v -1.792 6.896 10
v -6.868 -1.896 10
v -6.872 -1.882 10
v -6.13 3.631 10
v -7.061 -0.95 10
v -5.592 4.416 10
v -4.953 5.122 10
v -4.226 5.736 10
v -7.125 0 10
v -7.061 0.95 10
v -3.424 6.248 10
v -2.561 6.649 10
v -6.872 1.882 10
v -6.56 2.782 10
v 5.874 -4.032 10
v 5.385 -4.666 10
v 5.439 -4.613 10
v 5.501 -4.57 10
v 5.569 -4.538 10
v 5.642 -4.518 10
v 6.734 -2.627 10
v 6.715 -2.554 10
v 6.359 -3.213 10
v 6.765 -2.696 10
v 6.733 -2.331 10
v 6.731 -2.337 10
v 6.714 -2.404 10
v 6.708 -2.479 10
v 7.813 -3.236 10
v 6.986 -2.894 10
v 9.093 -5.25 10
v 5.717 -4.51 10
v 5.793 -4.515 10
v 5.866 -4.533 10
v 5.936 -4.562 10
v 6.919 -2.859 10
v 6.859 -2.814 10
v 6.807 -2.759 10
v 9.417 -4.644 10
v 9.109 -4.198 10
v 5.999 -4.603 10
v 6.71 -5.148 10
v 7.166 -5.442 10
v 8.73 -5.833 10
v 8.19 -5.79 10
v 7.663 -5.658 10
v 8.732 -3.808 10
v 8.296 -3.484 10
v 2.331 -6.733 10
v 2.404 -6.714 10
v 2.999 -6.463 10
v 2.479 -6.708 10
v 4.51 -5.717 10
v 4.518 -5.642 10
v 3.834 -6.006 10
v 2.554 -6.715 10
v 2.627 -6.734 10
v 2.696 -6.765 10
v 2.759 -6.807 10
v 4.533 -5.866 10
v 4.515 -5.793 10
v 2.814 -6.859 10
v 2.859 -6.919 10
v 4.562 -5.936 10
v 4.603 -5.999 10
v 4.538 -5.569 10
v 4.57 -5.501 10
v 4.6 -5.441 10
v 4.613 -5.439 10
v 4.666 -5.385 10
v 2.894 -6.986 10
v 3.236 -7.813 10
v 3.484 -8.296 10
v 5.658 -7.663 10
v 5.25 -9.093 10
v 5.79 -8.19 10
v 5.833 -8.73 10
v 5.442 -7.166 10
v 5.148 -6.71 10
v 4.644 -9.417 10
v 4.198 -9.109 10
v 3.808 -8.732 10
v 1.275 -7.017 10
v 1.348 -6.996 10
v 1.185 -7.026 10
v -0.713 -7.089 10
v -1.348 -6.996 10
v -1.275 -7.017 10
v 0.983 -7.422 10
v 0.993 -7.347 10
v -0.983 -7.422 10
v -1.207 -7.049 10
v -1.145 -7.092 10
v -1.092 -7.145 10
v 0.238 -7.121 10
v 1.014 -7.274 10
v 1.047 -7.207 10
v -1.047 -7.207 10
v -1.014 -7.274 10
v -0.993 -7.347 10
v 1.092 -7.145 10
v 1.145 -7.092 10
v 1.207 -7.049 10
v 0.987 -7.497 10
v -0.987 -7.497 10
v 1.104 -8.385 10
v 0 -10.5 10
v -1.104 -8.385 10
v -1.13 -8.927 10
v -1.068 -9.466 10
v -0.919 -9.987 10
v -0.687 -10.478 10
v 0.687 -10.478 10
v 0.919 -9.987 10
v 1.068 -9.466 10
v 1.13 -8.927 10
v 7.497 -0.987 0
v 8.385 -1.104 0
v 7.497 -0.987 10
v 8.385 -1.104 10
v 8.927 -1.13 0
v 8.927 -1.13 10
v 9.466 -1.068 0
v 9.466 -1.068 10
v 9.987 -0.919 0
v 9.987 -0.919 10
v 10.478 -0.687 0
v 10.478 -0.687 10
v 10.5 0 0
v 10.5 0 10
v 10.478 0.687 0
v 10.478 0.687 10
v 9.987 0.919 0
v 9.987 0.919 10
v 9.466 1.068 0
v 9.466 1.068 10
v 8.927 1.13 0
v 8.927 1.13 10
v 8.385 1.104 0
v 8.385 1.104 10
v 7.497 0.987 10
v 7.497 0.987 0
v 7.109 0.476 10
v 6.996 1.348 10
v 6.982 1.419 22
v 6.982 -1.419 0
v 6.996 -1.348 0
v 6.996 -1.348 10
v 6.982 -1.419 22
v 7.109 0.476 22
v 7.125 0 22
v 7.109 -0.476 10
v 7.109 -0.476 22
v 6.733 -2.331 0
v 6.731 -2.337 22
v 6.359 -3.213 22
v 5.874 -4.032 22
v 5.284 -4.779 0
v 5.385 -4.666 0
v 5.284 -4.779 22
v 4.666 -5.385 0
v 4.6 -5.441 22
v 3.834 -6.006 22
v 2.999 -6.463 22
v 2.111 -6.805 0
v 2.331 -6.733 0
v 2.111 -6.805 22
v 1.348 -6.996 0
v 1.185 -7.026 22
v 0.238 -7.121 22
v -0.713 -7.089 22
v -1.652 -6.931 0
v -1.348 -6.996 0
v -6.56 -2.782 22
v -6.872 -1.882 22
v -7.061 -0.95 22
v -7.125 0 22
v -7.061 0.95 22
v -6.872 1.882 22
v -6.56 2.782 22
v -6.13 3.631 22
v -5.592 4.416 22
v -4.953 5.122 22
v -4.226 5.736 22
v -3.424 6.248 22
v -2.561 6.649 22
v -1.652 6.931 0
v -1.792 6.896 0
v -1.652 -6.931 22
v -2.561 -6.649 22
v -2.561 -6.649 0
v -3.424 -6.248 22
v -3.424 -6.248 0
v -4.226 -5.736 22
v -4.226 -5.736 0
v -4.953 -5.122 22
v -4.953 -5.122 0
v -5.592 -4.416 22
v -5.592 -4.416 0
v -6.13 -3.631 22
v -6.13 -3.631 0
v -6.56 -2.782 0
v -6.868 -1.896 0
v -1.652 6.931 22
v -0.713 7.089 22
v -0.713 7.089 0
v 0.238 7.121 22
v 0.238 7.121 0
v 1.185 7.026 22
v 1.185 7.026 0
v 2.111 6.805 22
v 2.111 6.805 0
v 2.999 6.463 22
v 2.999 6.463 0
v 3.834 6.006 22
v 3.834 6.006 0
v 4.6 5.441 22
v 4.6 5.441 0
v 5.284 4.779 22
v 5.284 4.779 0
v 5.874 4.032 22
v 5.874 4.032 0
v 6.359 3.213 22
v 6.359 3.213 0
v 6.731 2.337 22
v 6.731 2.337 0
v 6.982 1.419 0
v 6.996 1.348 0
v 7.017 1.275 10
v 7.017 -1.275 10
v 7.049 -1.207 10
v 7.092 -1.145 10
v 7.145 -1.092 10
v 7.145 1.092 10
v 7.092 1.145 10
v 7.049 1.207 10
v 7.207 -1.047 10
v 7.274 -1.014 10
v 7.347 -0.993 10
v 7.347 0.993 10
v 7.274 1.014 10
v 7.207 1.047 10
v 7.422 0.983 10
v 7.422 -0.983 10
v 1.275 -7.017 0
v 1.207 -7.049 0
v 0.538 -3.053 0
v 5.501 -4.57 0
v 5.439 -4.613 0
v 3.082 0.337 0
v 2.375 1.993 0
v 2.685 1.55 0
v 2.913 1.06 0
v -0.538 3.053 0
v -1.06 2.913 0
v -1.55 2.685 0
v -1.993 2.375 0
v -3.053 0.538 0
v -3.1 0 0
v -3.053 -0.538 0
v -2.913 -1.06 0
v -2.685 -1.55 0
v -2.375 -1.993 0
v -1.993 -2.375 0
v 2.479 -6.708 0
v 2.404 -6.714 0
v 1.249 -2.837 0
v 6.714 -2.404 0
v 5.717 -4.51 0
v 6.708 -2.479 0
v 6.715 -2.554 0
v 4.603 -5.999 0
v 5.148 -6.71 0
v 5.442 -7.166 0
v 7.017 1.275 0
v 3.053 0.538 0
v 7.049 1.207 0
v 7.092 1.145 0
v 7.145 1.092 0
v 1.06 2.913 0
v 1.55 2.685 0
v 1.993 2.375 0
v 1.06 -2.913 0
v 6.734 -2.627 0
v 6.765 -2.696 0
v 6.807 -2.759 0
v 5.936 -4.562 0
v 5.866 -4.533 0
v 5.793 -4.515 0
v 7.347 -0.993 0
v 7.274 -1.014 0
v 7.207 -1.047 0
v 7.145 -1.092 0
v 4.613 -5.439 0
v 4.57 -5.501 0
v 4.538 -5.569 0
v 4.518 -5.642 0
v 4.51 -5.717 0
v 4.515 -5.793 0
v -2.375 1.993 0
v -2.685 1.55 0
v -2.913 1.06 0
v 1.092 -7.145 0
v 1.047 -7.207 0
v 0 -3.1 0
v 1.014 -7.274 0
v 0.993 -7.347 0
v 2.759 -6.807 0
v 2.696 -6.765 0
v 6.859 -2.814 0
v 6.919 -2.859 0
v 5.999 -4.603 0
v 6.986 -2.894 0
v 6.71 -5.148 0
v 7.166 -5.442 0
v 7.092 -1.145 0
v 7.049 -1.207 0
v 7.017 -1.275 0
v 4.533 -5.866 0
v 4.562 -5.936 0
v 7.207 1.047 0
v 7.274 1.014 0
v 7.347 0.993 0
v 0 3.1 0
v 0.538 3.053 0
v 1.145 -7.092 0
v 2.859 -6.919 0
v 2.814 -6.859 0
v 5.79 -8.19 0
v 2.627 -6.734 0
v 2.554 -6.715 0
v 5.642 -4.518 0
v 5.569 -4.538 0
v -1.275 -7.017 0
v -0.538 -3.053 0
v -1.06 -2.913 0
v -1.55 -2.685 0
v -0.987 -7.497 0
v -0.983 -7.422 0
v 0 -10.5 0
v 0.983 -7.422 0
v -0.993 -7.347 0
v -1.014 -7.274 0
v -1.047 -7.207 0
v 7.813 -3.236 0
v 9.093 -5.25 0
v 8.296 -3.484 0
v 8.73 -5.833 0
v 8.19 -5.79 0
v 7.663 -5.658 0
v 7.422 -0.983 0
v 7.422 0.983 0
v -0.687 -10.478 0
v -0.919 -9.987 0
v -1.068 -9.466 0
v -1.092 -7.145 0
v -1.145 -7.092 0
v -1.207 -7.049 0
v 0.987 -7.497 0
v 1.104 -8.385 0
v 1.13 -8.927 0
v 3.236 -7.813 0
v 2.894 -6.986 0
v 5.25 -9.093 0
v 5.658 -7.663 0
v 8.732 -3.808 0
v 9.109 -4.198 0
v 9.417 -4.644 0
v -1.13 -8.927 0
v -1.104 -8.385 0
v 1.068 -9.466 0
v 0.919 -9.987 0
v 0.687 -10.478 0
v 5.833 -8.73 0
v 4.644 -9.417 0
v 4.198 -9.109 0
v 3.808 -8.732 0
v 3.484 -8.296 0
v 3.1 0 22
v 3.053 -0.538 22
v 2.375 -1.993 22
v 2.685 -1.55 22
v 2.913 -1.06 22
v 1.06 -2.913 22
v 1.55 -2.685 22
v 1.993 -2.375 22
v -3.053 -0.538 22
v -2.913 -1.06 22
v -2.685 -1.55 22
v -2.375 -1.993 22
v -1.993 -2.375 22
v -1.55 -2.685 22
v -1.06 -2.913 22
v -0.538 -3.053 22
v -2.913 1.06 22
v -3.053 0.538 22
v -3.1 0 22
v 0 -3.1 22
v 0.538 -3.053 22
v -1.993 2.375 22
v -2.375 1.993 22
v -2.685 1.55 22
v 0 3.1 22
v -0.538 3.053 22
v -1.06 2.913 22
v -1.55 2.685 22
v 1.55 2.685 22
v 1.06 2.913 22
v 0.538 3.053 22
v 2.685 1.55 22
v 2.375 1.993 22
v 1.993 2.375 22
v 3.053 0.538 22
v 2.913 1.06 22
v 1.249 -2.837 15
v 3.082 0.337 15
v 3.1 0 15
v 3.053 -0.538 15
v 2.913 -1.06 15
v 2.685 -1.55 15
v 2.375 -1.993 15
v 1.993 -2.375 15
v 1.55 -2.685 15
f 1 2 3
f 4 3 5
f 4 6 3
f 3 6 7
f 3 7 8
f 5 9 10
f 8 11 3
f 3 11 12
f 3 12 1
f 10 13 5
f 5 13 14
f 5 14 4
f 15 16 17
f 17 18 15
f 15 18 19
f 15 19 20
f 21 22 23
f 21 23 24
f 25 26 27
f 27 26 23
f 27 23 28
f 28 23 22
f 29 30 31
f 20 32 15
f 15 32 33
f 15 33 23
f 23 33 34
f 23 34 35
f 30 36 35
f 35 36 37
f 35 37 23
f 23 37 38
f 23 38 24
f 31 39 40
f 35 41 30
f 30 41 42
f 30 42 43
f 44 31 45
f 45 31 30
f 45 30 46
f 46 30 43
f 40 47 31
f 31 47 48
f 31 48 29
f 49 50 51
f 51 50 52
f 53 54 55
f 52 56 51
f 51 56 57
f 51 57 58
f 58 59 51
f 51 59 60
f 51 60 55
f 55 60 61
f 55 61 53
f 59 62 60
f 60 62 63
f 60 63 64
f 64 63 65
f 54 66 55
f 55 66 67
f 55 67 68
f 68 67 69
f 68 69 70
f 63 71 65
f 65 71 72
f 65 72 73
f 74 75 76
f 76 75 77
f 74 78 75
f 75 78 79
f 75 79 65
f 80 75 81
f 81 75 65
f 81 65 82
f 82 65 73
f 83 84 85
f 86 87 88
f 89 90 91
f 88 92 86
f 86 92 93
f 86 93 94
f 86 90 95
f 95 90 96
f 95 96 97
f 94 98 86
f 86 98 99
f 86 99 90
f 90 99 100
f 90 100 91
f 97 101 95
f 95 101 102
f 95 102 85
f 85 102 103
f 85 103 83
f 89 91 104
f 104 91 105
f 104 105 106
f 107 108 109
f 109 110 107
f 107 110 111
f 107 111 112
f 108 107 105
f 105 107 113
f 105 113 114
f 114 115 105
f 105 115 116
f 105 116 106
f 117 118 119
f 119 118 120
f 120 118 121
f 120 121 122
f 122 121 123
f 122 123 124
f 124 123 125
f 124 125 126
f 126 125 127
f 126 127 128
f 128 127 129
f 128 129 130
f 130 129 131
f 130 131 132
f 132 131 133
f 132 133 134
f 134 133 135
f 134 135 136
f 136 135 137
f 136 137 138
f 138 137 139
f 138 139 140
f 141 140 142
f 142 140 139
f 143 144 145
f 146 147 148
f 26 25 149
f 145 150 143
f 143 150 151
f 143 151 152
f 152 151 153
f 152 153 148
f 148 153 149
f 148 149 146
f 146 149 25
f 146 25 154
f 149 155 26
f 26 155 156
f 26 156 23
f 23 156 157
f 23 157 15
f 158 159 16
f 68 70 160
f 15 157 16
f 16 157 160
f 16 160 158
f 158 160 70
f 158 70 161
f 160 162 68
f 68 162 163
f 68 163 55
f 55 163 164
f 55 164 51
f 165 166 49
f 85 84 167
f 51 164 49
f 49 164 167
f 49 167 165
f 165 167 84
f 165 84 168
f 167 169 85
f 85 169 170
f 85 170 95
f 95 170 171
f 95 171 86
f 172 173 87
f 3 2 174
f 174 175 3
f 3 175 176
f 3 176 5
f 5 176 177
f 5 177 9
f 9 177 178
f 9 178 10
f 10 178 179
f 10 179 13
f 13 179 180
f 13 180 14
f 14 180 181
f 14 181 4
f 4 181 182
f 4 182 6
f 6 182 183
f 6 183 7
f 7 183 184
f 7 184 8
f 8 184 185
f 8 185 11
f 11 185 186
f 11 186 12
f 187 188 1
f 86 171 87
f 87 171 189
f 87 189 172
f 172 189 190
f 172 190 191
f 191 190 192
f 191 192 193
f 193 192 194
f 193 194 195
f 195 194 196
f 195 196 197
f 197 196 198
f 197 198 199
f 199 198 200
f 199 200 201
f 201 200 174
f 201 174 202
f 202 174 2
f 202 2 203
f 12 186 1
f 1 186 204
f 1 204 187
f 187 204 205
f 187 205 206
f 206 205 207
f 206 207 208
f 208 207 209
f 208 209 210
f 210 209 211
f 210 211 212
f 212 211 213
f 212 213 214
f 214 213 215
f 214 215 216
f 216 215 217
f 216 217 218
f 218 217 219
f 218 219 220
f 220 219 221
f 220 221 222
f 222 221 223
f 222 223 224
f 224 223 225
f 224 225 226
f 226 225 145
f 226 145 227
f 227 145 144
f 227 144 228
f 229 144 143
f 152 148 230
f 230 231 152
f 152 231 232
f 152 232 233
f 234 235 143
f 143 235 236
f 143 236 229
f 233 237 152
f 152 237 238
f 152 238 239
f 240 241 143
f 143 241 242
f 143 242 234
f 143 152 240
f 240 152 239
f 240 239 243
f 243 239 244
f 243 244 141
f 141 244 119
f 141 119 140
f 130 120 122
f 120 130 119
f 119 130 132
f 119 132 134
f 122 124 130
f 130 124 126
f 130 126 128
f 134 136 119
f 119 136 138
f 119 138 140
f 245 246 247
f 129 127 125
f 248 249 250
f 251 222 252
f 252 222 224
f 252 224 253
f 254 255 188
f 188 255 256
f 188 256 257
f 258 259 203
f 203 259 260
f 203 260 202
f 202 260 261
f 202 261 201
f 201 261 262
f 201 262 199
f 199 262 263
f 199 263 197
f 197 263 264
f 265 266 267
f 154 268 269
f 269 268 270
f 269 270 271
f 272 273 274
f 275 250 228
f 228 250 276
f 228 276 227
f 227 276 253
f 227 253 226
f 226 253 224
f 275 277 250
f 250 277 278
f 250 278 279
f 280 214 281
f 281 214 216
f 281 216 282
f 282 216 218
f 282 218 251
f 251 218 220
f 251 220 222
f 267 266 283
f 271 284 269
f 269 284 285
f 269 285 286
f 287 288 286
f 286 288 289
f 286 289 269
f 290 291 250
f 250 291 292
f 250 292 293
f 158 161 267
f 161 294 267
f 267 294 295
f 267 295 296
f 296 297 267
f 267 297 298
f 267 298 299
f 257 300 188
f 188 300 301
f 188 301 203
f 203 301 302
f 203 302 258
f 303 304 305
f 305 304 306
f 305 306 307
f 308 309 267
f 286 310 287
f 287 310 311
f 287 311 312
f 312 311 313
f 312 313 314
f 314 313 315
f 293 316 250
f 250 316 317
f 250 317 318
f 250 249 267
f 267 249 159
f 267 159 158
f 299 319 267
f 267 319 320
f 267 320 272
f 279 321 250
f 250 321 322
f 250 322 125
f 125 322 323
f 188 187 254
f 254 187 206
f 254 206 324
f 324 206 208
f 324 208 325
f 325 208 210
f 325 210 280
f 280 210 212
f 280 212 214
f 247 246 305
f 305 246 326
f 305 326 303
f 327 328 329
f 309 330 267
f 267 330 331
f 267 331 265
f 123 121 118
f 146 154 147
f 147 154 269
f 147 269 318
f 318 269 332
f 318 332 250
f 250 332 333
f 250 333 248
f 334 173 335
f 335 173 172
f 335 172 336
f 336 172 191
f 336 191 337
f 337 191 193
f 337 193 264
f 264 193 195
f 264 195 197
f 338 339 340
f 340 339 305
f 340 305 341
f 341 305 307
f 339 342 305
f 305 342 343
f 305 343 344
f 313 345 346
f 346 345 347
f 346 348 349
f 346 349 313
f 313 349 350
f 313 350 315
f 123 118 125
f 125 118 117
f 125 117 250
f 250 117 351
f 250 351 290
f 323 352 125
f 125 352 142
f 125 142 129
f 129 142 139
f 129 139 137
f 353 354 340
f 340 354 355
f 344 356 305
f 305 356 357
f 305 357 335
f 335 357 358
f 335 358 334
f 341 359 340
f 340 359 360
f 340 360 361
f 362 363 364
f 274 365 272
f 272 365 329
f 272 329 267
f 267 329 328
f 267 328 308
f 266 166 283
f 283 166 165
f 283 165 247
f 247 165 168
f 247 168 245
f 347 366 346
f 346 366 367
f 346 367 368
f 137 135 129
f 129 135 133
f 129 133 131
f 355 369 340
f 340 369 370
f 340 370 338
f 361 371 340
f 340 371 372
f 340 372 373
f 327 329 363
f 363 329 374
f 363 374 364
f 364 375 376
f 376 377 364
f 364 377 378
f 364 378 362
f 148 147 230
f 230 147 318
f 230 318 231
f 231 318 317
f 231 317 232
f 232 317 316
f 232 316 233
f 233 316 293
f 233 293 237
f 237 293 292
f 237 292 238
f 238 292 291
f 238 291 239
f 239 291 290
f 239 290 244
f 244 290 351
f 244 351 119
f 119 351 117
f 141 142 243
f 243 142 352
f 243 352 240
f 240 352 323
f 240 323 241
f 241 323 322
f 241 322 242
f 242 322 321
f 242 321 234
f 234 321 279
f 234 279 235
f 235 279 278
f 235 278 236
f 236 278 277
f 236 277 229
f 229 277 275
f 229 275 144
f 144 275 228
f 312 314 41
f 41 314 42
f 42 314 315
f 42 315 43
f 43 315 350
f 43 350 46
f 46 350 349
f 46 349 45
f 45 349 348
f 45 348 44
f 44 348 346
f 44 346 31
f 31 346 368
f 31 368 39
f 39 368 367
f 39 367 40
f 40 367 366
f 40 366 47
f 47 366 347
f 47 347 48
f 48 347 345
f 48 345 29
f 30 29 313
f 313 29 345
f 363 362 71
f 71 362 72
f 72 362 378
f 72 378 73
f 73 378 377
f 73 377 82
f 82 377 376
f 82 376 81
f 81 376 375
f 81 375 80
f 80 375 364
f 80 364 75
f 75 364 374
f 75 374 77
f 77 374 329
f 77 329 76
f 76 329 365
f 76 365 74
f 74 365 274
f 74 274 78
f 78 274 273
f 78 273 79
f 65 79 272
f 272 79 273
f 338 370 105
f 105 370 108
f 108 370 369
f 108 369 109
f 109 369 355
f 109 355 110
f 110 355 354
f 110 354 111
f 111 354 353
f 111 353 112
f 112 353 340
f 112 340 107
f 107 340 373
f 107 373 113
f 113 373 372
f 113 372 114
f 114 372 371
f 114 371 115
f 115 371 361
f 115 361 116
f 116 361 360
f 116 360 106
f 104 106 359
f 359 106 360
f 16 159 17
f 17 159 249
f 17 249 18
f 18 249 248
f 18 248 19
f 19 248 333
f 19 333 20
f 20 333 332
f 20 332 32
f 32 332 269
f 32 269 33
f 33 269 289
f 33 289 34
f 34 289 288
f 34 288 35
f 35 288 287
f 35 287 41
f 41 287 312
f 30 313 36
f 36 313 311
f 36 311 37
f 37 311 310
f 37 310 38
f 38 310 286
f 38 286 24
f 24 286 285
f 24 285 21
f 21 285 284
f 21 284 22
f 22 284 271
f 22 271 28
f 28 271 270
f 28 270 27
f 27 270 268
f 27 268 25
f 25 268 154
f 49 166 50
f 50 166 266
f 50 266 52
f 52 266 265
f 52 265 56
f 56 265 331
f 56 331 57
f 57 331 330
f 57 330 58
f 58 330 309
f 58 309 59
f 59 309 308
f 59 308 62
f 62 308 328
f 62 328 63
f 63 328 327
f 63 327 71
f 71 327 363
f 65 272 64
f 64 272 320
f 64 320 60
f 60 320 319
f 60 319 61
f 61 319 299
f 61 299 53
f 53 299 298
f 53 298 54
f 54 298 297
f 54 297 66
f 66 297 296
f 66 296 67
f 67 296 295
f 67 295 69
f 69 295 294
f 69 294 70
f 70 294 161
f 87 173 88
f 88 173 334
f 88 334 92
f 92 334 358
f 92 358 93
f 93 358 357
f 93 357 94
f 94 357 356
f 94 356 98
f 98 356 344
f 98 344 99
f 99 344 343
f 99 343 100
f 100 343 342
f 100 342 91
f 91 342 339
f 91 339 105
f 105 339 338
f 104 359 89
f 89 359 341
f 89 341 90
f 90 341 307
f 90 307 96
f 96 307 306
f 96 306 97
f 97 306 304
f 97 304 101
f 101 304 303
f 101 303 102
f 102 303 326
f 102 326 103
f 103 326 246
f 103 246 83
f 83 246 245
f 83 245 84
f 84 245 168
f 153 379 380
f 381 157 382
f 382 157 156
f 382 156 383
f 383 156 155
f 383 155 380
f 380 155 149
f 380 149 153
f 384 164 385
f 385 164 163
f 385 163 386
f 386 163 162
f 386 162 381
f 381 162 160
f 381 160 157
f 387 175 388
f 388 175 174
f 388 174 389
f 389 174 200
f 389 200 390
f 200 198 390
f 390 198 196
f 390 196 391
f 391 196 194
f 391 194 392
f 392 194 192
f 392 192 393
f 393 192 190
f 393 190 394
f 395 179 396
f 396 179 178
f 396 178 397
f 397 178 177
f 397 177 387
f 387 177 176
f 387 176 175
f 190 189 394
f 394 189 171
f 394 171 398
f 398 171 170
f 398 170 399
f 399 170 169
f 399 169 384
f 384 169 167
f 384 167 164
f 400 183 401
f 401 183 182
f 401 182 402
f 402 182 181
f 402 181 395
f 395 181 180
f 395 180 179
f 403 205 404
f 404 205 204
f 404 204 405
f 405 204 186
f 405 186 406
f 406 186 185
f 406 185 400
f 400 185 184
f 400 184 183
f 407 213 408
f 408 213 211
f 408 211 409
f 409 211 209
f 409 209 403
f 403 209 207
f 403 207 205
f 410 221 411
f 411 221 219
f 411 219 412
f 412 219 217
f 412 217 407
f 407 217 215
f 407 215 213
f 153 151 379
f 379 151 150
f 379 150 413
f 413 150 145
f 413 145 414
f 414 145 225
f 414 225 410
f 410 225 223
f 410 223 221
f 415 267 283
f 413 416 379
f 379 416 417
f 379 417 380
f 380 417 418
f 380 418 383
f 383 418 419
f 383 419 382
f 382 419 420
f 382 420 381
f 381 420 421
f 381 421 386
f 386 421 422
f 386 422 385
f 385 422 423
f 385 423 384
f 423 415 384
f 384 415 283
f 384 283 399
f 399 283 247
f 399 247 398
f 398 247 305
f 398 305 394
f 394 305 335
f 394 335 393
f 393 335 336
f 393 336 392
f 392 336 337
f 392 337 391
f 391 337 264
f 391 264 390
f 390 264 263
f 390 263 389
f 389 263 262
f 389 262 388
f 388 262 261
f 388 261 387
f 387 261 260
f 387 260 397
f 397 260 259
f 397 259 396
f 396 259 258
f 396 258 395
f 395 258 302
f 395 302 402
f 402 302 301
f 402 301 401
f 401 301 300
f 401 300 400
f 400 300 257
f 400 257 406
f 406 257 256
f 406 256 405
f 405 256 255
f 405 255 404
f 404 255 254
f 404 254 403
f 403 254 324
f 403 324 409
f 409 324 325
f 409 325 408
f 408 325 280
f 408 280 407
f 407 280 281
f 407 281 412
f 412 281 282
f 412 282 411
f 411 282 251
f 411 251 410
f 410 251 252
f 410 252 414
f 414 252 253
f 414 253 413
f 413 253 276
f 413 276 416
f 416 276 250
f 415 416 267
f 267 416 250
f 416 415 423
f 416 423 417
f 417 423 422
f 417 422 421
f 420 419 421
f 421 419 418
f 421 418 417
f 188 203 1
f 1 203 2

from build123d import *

# Parameters (mm, degrees)
MAINGEAR_DEPTH                     = 10
CONG_1_R                           = 0.45
R_P_TITION_CIRCULAIRE1_COUNT       = 4
R_P_TITION_CIRCULAIRE1_ANGLE       = 90
CONG_1_OF_R_P_TITION_CIRCULAIRE1_R = 0.45
ESQUISSE5_R                        = 7.125
MAINBASECIRCLE_DEPTH               = 10
REMOVEGEARTOP_DEPTH                = 10
ESQUISSE9_R                        = 7.125
ESQUISSE9_R_2                      = 3.1
GEARBOTTOMFIX_DEPTH                = 12
ESQUISSE3_R                        = 3.1
GEARHOLE_DEPTH                     = 23
MEPLATHOLE_DEPTH                   = 15


with BuildPart() as part:
    # Esquisse1 → MainGear (new body)
    with BuildSketch(Plane.XY):
        with BuildLine():
            Line((0, 0), (6.882221512, 1.844085696))
            ThreePointArc((6.882221512, 1.844085696), (6.988095123, 1.390018544), (7.064044637, 0.92999912))
            Line((7.064044637, 0.92999912), (8.384880781, 1.103890497))
            ThreePointArc((8.384880781, 1.103890497), (9.465680859, 1.068283463), (10.477518694, 0.686732857))
            ThreePointArc((10.477518694, 0.686732857), (10.5, 0), (10.477518694, -0.686732857))
            ThreePointArc((10.477518694, -0.686732857), (9.465680859, -1.068283463), (8.384880781, -1.103890497))
            Line((8.384880781, -1.103890497), (7.064044637, -0.92999912))
            ThreePointArc((7.064044637, -0.92999912), (6.988095123, -1.390018544), (6.882221512, -1.844085696))
            Line((6.882221512, -1.844085696), (0, 0))
        make_face()
    maingear = extrude(amount=MAINGEAR_DEPTH)

    # Cong_1
    cong_1_edges = [part.edges().sort_by_distance(p)[0] for p in [
        (7.064044637, 0.92999912, 5),
        (7.064044637, -0.92999912, 5),
    ]]
    fillet(cong_1_edges, radius=CONG_1_R)

    # R_p_tition circulaire1: MainGear ×4 about axis
    r_p_tition_circulaire1_axis = Axis((0, 0, 0), (0, 0, -1))
    for i in range(1, R_P_TITION_CIRCULAIRE1_COUNT):
        add(maingear.rotate(r_p_tition_circulaire1_axis, i * R_P_TITION_CIRCULAIRE1_ANGLE / (R_P_TITION_CIRCULAIRE1_COUNT - 1)))

    # Cong_1 of R_p_tition circulaire1
    cong_1_of_r_p_tition_circulaire1_edges = [part.edges().sort_by_distance(p)[0] for p in [
        (6.582641669, -2.726619456, 5),
        (5.65264255, -4.337425182, 5),
        (4.337425182, -5.65264255, 5),
        (2.726619456, -6.582641669, 5),
        (0.92999912, -7.064044637, 5),
        (-0.92999912, -7.064044637, 5),
    ]]
    fillet(cong_1_of_r_p_tition_circulaire1_edges, radius=CONG_1_OF_R_P_TITION_CIRCULAIRE1_R)

    # Esquisse9 → GearBottomFix (add)
    with BuildSketch(Plane.XY.offset(10)):
        Circle(ESQUISSE9_R)
        Circle(ESQUISSE9_R_2, mode=Mode.SUBTRACT)
    extrude(amount=GEARBOTTOMFIX_DEPTH)


with BuildPart() as body_2:
    # Esquisse5 → MainBaseCircle (new body, through all)
    with BuildSketch(Plane.XY.offset(10)):
        Circle(ESQUISSE5_R)
    extrude(amount=-MAINBASECIRCLE_DEPTH)

    # Esquisse7 → RemoveGearTop (cut)
    with BuildSketch(Plane.XY.offset(10)):
        with BuildLine():
            Line((-6.868119582, -1.895932068), (-1.792134456, 6.895932068))
            ThreePointArc((-1.792134456, 6.895932068), (-6.170431002, 3.5625), (-6.868119582, -1.895932068))
        make_face()
    extrude(amount=-REMOVEGEARTOP_DEPTH, mode=Mode.SUBTRACT)


with BuildPart() as gearhole_tool:
    # Esquisse3 → GearHole (new body, through all)
    with BuildSketch(Plane.XY):
        Circle(ESQUISSE3_R)
    extrude(amount=GEARHOLE_DEPTH)


with BuildPart() as part_1:
    add(part.part)

    # GearHole: cut by gearhole_tool
    add(gearhole_tool.part, mode=Mode.SUBTRACT)



with BuildPart() as body_2_1:
    add(body_2.part)

    # GearHole: cut by gearhole_tool
    add(gearhole_tool.part, mode=Mode.SUBTRACT)


with BuildPart() as part_2:
    add(part_1.part)

    add(body_2_1.part)  # MeplatHole merges body 2
    # Esquisse10 → MeplatHole (add)
    with BuildSketch(Plane(origin=(0, 0, 0), x_dir=(-1, 0, 0), z_dir=(0, 0, -1))):
        with BuildLine():
            Line((-1.24854837, -2.837450787), (-3.081578648, 0.337450787))
            ThreePointArc((-3.081578648, 0.337450787), (-2.684678752, -1.55), (-1.24854837, -2.837450787))
        make_face()
    extrude(amount=-MEPLATHOLE_DEPTH)


solid = part_2.part
